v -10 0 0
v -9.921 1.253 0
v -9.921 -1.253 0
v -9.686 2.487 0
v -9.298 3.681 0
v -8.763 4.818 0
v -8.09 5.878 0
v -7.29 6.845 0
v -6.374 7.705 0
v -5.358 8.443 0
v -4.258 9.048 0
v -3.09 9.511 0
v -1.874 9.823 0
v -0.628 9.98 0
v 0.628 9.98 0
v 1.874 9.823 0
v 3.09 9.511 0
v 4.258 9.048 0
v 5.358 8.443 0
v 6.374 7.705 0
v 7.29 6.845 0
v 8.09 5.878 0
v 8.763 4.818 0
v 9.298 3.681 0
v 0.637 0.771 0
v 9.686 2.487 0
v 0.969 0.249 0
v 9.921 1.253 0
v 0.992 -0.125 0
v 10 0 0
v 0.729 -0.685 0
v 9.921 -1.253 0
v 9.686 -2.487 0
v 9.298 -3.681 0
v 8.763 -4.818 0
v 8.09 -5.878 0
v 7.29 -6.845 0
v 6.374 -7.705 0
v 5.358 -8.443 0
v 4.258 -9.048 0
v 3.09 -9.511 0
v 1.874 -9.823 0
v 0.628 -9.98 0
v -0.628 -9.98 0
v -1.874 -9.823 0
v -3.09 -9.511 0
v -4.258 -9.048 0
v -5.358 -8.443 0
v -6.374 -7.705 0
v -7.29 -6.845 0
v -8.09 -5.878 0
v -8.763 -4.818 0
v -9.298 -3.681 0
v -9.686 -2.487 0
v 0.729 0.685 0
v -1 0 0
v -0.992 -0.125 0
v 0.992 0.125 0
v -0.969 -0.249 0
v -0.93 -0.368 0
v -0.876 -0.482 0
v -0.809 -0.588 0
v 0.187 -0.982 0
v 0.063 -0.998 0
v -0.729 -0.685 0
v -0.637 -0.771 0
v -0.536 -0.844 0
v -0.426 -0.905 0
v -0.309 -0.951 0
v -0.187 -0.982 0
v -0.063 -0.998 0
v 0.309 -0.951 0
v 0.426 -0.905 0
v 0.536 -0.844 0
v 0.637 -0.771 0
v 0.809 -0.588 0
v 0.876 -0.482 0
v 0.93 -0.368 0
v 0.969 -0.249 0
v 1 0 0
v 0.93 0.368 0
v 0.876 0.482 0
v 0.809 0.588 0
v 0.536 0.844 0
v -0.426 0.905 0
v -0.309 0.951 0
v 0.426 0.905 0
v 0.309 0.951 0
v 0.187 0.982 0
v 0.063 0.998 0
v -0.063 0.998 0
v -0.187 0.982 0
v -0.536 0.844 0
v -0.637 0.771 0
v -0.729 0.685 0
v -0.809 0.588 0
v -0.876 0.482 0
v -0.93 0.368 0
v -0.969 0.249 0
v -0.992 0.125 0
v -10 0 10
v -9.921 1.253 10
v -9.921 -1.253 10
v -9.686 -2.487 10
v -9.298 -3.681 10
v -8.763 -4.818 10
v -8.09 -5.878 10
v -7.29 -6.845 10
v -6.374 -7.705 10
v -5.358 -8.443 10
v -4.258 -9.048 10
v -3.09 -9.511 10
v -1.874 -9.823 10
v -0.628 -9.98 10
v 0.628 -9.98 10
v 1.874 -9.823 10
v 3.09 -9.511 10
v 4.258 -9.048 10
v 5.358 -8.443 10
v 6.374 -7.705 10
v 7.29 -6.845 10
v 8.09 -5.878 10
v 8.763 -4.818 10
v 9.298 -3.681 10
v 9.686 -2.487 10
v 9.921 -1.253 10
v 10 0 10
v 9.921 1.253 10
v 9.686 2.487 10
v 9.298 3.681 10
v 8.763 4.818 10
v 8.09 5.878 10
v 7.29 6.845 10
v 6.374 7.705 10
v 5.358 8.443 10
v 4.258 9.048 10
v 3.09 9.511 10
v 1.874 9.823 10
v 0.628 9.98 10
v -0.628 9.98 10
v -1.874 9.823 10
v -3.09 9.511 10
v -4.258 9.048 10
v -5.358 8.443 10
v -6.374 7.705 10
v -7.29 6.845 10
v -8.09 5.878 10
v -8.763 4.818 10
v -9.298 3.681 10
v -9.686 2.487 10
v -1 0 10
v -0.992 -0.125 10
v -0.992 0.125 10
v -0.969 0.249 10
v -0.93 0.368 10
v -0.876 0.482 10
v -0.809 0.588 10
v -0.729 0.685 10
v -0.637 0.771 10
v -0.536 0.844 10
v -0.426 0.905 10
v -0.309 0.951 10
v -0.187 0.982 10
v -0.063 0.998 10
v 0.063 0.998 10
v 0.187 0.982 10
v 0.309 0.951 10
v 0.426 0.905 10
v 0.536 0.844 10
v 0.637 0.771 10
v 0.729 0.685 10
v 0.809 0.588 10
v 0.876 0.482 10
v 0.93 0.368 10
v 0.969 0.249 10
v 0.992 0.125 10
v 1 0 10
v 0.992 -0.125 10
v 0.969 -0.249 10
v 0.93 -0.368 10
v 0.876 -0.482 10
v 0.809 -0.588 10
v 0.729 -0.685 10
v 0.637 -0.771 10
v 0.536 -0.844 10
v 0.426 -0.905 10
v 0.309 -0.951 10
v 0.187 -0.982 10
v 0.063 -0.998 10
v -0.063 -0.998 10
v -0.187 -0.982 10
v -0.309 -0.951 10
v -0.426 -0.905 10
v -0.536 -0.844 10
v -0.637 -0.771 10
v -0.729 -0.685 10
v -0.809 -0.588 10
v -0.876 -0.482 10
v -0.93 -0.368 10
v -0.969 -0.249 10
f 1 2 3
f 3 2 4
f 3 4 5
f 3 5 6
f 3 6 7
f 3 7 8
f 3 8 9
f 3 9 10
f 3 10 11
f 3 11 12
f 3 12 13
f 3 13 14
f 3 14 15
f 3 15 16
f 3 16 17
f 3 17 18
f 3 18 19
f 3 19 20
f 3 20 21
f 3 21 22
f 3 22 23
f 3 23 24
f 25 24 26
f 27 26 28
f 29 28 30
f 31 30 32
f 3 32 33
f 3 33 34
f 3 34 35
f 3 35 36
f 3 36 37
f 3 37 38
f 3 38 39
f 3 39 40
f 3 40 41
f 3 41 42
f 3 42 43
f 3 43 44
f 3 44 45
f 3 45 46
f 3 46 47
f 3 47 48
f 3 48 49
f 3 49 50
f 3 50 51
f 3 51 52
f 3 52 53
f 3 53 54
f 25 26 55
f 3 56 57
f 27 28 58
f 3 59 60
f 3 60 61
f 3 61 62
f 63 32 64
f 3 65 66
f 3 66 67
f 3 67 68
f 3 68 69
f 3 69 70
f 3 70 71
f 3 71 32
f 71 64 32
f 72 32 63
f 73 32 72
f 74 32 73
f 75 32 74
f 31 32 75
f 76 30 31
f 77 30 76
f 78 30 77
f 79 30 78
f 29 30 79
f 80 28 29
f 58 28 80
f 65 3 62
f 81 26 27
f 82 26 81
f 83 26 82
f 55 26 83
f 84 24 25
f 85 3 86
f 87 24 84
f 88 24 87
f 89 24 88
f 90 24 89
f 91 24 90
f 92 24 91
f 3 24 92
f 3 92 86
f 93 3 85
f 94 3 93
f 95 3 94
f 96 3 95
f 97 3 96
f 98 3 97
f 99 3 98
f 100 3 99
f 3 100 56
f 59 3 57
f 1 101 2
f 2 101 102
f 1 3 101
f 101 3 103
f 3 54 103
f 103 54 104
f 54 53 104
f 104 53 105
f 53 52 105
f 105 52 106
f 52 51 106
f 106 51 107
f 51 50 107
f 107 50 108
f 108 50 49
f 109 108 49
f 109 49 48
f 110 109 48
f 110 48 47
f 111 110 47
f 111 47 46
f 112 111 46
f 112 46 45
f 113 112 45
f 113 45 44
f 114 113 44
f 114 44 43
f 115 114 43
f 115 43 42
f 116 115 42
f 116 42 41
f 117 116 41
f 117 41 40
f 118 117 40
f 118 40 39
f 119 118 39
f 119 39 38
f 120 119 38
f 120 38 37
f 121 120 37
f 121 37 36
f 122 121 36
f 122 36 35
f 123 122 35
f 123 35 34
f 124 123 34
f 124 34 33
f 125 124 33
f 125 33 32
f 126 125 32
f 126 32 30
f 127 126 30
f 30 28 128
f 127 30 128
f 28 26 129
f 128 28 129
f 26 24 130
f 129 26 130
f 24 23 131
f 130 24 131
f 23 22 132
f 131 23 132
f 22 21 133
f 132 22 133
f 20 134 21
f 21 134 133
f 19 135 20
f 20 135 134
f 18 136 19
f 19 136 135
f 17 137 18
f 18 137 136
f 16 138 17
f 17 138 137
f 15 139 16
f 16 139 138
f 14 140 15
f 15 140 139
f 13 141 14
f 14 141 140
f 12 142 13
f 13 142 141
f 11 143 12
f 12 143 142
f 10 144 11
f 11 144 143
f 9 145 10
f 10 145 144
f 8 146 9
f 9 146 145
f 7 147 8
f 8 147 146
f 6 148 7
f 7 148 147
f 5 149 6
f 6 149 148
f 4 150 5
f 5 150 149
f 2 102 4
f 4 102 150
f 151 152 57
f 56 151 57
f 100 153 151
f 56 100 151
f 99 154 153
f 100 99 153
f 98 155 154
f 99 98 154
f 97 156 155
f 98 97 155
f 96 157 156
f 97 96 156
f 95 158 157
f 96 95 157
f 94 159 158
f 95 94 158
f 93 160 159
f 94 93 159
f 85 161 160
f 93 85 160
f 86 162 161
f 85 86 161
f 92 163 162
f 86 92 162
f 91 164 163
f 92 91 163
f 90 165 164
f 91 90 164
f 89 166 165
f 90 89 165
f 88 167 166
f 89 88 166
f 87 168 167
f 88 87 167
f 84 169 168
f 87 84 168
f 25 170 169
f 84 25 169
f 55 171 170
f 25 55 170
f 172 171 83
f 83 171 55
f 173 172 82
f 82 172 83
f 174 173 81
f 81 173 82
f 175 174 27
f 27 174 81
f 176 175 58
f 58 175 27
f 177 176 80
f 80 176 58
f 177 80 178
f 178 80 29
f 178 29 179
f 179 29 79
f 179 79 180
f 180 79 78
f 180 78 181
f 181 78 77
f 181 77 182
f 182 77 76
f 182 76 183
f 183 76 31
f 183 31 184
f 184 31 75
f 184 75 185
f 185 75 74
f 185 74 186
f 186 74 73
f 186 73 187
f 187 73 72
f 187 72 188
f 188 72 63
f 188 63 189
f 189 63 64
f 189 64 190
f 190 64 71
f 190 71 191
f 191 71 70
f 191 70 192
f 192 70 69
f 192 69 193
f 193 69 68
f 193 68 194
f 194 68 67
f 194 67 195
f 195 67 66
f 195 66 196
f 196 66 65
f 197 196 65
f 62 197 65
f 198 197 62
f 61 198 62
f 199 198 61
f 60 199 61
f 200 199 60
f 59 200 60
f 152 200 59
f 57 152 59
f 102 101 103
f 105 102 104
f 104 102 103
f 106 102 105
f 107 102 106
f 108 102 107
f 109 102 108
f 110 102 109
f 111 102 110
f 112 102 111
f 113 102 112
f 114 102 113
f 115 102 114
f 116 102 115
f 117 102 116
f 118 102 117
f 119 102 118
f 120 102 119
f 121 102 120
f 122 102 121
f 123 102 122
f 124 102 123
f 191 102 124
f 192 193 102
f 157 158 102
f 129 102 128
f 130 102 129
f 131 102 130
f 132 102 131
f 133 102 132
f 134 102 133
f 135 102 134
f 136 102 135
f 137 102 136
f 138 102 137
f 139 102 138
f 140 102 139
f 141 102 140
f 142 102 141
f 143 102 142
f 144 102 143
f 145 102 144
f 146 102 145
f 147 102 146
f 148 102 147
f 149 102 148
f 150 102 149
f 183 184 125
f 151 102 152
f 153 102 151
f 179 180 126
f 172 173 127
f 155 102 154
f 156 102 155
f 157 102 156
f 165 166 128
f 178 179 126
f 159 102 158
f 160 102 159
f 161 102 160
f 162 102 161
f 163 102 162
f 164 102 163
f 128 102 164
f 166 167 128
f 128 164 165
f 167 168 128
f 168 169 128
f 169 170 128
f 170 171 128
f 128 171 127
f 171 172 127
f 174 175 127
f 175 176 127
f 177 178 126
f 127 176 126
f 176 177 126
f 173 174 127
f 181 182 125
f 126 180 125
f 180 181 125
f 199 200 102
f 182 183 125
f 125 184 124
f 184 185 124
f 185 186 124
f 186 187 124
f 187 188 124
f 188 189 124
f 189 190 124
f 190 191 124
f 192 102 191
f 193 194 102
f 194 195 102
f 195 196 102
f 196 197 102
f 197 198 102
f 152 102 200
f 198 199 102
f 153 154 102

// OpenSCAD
$fn = 50;

difference(){
	cylinder(r=10,h=10);
	cylinder(r=1.0,h=10);

}
